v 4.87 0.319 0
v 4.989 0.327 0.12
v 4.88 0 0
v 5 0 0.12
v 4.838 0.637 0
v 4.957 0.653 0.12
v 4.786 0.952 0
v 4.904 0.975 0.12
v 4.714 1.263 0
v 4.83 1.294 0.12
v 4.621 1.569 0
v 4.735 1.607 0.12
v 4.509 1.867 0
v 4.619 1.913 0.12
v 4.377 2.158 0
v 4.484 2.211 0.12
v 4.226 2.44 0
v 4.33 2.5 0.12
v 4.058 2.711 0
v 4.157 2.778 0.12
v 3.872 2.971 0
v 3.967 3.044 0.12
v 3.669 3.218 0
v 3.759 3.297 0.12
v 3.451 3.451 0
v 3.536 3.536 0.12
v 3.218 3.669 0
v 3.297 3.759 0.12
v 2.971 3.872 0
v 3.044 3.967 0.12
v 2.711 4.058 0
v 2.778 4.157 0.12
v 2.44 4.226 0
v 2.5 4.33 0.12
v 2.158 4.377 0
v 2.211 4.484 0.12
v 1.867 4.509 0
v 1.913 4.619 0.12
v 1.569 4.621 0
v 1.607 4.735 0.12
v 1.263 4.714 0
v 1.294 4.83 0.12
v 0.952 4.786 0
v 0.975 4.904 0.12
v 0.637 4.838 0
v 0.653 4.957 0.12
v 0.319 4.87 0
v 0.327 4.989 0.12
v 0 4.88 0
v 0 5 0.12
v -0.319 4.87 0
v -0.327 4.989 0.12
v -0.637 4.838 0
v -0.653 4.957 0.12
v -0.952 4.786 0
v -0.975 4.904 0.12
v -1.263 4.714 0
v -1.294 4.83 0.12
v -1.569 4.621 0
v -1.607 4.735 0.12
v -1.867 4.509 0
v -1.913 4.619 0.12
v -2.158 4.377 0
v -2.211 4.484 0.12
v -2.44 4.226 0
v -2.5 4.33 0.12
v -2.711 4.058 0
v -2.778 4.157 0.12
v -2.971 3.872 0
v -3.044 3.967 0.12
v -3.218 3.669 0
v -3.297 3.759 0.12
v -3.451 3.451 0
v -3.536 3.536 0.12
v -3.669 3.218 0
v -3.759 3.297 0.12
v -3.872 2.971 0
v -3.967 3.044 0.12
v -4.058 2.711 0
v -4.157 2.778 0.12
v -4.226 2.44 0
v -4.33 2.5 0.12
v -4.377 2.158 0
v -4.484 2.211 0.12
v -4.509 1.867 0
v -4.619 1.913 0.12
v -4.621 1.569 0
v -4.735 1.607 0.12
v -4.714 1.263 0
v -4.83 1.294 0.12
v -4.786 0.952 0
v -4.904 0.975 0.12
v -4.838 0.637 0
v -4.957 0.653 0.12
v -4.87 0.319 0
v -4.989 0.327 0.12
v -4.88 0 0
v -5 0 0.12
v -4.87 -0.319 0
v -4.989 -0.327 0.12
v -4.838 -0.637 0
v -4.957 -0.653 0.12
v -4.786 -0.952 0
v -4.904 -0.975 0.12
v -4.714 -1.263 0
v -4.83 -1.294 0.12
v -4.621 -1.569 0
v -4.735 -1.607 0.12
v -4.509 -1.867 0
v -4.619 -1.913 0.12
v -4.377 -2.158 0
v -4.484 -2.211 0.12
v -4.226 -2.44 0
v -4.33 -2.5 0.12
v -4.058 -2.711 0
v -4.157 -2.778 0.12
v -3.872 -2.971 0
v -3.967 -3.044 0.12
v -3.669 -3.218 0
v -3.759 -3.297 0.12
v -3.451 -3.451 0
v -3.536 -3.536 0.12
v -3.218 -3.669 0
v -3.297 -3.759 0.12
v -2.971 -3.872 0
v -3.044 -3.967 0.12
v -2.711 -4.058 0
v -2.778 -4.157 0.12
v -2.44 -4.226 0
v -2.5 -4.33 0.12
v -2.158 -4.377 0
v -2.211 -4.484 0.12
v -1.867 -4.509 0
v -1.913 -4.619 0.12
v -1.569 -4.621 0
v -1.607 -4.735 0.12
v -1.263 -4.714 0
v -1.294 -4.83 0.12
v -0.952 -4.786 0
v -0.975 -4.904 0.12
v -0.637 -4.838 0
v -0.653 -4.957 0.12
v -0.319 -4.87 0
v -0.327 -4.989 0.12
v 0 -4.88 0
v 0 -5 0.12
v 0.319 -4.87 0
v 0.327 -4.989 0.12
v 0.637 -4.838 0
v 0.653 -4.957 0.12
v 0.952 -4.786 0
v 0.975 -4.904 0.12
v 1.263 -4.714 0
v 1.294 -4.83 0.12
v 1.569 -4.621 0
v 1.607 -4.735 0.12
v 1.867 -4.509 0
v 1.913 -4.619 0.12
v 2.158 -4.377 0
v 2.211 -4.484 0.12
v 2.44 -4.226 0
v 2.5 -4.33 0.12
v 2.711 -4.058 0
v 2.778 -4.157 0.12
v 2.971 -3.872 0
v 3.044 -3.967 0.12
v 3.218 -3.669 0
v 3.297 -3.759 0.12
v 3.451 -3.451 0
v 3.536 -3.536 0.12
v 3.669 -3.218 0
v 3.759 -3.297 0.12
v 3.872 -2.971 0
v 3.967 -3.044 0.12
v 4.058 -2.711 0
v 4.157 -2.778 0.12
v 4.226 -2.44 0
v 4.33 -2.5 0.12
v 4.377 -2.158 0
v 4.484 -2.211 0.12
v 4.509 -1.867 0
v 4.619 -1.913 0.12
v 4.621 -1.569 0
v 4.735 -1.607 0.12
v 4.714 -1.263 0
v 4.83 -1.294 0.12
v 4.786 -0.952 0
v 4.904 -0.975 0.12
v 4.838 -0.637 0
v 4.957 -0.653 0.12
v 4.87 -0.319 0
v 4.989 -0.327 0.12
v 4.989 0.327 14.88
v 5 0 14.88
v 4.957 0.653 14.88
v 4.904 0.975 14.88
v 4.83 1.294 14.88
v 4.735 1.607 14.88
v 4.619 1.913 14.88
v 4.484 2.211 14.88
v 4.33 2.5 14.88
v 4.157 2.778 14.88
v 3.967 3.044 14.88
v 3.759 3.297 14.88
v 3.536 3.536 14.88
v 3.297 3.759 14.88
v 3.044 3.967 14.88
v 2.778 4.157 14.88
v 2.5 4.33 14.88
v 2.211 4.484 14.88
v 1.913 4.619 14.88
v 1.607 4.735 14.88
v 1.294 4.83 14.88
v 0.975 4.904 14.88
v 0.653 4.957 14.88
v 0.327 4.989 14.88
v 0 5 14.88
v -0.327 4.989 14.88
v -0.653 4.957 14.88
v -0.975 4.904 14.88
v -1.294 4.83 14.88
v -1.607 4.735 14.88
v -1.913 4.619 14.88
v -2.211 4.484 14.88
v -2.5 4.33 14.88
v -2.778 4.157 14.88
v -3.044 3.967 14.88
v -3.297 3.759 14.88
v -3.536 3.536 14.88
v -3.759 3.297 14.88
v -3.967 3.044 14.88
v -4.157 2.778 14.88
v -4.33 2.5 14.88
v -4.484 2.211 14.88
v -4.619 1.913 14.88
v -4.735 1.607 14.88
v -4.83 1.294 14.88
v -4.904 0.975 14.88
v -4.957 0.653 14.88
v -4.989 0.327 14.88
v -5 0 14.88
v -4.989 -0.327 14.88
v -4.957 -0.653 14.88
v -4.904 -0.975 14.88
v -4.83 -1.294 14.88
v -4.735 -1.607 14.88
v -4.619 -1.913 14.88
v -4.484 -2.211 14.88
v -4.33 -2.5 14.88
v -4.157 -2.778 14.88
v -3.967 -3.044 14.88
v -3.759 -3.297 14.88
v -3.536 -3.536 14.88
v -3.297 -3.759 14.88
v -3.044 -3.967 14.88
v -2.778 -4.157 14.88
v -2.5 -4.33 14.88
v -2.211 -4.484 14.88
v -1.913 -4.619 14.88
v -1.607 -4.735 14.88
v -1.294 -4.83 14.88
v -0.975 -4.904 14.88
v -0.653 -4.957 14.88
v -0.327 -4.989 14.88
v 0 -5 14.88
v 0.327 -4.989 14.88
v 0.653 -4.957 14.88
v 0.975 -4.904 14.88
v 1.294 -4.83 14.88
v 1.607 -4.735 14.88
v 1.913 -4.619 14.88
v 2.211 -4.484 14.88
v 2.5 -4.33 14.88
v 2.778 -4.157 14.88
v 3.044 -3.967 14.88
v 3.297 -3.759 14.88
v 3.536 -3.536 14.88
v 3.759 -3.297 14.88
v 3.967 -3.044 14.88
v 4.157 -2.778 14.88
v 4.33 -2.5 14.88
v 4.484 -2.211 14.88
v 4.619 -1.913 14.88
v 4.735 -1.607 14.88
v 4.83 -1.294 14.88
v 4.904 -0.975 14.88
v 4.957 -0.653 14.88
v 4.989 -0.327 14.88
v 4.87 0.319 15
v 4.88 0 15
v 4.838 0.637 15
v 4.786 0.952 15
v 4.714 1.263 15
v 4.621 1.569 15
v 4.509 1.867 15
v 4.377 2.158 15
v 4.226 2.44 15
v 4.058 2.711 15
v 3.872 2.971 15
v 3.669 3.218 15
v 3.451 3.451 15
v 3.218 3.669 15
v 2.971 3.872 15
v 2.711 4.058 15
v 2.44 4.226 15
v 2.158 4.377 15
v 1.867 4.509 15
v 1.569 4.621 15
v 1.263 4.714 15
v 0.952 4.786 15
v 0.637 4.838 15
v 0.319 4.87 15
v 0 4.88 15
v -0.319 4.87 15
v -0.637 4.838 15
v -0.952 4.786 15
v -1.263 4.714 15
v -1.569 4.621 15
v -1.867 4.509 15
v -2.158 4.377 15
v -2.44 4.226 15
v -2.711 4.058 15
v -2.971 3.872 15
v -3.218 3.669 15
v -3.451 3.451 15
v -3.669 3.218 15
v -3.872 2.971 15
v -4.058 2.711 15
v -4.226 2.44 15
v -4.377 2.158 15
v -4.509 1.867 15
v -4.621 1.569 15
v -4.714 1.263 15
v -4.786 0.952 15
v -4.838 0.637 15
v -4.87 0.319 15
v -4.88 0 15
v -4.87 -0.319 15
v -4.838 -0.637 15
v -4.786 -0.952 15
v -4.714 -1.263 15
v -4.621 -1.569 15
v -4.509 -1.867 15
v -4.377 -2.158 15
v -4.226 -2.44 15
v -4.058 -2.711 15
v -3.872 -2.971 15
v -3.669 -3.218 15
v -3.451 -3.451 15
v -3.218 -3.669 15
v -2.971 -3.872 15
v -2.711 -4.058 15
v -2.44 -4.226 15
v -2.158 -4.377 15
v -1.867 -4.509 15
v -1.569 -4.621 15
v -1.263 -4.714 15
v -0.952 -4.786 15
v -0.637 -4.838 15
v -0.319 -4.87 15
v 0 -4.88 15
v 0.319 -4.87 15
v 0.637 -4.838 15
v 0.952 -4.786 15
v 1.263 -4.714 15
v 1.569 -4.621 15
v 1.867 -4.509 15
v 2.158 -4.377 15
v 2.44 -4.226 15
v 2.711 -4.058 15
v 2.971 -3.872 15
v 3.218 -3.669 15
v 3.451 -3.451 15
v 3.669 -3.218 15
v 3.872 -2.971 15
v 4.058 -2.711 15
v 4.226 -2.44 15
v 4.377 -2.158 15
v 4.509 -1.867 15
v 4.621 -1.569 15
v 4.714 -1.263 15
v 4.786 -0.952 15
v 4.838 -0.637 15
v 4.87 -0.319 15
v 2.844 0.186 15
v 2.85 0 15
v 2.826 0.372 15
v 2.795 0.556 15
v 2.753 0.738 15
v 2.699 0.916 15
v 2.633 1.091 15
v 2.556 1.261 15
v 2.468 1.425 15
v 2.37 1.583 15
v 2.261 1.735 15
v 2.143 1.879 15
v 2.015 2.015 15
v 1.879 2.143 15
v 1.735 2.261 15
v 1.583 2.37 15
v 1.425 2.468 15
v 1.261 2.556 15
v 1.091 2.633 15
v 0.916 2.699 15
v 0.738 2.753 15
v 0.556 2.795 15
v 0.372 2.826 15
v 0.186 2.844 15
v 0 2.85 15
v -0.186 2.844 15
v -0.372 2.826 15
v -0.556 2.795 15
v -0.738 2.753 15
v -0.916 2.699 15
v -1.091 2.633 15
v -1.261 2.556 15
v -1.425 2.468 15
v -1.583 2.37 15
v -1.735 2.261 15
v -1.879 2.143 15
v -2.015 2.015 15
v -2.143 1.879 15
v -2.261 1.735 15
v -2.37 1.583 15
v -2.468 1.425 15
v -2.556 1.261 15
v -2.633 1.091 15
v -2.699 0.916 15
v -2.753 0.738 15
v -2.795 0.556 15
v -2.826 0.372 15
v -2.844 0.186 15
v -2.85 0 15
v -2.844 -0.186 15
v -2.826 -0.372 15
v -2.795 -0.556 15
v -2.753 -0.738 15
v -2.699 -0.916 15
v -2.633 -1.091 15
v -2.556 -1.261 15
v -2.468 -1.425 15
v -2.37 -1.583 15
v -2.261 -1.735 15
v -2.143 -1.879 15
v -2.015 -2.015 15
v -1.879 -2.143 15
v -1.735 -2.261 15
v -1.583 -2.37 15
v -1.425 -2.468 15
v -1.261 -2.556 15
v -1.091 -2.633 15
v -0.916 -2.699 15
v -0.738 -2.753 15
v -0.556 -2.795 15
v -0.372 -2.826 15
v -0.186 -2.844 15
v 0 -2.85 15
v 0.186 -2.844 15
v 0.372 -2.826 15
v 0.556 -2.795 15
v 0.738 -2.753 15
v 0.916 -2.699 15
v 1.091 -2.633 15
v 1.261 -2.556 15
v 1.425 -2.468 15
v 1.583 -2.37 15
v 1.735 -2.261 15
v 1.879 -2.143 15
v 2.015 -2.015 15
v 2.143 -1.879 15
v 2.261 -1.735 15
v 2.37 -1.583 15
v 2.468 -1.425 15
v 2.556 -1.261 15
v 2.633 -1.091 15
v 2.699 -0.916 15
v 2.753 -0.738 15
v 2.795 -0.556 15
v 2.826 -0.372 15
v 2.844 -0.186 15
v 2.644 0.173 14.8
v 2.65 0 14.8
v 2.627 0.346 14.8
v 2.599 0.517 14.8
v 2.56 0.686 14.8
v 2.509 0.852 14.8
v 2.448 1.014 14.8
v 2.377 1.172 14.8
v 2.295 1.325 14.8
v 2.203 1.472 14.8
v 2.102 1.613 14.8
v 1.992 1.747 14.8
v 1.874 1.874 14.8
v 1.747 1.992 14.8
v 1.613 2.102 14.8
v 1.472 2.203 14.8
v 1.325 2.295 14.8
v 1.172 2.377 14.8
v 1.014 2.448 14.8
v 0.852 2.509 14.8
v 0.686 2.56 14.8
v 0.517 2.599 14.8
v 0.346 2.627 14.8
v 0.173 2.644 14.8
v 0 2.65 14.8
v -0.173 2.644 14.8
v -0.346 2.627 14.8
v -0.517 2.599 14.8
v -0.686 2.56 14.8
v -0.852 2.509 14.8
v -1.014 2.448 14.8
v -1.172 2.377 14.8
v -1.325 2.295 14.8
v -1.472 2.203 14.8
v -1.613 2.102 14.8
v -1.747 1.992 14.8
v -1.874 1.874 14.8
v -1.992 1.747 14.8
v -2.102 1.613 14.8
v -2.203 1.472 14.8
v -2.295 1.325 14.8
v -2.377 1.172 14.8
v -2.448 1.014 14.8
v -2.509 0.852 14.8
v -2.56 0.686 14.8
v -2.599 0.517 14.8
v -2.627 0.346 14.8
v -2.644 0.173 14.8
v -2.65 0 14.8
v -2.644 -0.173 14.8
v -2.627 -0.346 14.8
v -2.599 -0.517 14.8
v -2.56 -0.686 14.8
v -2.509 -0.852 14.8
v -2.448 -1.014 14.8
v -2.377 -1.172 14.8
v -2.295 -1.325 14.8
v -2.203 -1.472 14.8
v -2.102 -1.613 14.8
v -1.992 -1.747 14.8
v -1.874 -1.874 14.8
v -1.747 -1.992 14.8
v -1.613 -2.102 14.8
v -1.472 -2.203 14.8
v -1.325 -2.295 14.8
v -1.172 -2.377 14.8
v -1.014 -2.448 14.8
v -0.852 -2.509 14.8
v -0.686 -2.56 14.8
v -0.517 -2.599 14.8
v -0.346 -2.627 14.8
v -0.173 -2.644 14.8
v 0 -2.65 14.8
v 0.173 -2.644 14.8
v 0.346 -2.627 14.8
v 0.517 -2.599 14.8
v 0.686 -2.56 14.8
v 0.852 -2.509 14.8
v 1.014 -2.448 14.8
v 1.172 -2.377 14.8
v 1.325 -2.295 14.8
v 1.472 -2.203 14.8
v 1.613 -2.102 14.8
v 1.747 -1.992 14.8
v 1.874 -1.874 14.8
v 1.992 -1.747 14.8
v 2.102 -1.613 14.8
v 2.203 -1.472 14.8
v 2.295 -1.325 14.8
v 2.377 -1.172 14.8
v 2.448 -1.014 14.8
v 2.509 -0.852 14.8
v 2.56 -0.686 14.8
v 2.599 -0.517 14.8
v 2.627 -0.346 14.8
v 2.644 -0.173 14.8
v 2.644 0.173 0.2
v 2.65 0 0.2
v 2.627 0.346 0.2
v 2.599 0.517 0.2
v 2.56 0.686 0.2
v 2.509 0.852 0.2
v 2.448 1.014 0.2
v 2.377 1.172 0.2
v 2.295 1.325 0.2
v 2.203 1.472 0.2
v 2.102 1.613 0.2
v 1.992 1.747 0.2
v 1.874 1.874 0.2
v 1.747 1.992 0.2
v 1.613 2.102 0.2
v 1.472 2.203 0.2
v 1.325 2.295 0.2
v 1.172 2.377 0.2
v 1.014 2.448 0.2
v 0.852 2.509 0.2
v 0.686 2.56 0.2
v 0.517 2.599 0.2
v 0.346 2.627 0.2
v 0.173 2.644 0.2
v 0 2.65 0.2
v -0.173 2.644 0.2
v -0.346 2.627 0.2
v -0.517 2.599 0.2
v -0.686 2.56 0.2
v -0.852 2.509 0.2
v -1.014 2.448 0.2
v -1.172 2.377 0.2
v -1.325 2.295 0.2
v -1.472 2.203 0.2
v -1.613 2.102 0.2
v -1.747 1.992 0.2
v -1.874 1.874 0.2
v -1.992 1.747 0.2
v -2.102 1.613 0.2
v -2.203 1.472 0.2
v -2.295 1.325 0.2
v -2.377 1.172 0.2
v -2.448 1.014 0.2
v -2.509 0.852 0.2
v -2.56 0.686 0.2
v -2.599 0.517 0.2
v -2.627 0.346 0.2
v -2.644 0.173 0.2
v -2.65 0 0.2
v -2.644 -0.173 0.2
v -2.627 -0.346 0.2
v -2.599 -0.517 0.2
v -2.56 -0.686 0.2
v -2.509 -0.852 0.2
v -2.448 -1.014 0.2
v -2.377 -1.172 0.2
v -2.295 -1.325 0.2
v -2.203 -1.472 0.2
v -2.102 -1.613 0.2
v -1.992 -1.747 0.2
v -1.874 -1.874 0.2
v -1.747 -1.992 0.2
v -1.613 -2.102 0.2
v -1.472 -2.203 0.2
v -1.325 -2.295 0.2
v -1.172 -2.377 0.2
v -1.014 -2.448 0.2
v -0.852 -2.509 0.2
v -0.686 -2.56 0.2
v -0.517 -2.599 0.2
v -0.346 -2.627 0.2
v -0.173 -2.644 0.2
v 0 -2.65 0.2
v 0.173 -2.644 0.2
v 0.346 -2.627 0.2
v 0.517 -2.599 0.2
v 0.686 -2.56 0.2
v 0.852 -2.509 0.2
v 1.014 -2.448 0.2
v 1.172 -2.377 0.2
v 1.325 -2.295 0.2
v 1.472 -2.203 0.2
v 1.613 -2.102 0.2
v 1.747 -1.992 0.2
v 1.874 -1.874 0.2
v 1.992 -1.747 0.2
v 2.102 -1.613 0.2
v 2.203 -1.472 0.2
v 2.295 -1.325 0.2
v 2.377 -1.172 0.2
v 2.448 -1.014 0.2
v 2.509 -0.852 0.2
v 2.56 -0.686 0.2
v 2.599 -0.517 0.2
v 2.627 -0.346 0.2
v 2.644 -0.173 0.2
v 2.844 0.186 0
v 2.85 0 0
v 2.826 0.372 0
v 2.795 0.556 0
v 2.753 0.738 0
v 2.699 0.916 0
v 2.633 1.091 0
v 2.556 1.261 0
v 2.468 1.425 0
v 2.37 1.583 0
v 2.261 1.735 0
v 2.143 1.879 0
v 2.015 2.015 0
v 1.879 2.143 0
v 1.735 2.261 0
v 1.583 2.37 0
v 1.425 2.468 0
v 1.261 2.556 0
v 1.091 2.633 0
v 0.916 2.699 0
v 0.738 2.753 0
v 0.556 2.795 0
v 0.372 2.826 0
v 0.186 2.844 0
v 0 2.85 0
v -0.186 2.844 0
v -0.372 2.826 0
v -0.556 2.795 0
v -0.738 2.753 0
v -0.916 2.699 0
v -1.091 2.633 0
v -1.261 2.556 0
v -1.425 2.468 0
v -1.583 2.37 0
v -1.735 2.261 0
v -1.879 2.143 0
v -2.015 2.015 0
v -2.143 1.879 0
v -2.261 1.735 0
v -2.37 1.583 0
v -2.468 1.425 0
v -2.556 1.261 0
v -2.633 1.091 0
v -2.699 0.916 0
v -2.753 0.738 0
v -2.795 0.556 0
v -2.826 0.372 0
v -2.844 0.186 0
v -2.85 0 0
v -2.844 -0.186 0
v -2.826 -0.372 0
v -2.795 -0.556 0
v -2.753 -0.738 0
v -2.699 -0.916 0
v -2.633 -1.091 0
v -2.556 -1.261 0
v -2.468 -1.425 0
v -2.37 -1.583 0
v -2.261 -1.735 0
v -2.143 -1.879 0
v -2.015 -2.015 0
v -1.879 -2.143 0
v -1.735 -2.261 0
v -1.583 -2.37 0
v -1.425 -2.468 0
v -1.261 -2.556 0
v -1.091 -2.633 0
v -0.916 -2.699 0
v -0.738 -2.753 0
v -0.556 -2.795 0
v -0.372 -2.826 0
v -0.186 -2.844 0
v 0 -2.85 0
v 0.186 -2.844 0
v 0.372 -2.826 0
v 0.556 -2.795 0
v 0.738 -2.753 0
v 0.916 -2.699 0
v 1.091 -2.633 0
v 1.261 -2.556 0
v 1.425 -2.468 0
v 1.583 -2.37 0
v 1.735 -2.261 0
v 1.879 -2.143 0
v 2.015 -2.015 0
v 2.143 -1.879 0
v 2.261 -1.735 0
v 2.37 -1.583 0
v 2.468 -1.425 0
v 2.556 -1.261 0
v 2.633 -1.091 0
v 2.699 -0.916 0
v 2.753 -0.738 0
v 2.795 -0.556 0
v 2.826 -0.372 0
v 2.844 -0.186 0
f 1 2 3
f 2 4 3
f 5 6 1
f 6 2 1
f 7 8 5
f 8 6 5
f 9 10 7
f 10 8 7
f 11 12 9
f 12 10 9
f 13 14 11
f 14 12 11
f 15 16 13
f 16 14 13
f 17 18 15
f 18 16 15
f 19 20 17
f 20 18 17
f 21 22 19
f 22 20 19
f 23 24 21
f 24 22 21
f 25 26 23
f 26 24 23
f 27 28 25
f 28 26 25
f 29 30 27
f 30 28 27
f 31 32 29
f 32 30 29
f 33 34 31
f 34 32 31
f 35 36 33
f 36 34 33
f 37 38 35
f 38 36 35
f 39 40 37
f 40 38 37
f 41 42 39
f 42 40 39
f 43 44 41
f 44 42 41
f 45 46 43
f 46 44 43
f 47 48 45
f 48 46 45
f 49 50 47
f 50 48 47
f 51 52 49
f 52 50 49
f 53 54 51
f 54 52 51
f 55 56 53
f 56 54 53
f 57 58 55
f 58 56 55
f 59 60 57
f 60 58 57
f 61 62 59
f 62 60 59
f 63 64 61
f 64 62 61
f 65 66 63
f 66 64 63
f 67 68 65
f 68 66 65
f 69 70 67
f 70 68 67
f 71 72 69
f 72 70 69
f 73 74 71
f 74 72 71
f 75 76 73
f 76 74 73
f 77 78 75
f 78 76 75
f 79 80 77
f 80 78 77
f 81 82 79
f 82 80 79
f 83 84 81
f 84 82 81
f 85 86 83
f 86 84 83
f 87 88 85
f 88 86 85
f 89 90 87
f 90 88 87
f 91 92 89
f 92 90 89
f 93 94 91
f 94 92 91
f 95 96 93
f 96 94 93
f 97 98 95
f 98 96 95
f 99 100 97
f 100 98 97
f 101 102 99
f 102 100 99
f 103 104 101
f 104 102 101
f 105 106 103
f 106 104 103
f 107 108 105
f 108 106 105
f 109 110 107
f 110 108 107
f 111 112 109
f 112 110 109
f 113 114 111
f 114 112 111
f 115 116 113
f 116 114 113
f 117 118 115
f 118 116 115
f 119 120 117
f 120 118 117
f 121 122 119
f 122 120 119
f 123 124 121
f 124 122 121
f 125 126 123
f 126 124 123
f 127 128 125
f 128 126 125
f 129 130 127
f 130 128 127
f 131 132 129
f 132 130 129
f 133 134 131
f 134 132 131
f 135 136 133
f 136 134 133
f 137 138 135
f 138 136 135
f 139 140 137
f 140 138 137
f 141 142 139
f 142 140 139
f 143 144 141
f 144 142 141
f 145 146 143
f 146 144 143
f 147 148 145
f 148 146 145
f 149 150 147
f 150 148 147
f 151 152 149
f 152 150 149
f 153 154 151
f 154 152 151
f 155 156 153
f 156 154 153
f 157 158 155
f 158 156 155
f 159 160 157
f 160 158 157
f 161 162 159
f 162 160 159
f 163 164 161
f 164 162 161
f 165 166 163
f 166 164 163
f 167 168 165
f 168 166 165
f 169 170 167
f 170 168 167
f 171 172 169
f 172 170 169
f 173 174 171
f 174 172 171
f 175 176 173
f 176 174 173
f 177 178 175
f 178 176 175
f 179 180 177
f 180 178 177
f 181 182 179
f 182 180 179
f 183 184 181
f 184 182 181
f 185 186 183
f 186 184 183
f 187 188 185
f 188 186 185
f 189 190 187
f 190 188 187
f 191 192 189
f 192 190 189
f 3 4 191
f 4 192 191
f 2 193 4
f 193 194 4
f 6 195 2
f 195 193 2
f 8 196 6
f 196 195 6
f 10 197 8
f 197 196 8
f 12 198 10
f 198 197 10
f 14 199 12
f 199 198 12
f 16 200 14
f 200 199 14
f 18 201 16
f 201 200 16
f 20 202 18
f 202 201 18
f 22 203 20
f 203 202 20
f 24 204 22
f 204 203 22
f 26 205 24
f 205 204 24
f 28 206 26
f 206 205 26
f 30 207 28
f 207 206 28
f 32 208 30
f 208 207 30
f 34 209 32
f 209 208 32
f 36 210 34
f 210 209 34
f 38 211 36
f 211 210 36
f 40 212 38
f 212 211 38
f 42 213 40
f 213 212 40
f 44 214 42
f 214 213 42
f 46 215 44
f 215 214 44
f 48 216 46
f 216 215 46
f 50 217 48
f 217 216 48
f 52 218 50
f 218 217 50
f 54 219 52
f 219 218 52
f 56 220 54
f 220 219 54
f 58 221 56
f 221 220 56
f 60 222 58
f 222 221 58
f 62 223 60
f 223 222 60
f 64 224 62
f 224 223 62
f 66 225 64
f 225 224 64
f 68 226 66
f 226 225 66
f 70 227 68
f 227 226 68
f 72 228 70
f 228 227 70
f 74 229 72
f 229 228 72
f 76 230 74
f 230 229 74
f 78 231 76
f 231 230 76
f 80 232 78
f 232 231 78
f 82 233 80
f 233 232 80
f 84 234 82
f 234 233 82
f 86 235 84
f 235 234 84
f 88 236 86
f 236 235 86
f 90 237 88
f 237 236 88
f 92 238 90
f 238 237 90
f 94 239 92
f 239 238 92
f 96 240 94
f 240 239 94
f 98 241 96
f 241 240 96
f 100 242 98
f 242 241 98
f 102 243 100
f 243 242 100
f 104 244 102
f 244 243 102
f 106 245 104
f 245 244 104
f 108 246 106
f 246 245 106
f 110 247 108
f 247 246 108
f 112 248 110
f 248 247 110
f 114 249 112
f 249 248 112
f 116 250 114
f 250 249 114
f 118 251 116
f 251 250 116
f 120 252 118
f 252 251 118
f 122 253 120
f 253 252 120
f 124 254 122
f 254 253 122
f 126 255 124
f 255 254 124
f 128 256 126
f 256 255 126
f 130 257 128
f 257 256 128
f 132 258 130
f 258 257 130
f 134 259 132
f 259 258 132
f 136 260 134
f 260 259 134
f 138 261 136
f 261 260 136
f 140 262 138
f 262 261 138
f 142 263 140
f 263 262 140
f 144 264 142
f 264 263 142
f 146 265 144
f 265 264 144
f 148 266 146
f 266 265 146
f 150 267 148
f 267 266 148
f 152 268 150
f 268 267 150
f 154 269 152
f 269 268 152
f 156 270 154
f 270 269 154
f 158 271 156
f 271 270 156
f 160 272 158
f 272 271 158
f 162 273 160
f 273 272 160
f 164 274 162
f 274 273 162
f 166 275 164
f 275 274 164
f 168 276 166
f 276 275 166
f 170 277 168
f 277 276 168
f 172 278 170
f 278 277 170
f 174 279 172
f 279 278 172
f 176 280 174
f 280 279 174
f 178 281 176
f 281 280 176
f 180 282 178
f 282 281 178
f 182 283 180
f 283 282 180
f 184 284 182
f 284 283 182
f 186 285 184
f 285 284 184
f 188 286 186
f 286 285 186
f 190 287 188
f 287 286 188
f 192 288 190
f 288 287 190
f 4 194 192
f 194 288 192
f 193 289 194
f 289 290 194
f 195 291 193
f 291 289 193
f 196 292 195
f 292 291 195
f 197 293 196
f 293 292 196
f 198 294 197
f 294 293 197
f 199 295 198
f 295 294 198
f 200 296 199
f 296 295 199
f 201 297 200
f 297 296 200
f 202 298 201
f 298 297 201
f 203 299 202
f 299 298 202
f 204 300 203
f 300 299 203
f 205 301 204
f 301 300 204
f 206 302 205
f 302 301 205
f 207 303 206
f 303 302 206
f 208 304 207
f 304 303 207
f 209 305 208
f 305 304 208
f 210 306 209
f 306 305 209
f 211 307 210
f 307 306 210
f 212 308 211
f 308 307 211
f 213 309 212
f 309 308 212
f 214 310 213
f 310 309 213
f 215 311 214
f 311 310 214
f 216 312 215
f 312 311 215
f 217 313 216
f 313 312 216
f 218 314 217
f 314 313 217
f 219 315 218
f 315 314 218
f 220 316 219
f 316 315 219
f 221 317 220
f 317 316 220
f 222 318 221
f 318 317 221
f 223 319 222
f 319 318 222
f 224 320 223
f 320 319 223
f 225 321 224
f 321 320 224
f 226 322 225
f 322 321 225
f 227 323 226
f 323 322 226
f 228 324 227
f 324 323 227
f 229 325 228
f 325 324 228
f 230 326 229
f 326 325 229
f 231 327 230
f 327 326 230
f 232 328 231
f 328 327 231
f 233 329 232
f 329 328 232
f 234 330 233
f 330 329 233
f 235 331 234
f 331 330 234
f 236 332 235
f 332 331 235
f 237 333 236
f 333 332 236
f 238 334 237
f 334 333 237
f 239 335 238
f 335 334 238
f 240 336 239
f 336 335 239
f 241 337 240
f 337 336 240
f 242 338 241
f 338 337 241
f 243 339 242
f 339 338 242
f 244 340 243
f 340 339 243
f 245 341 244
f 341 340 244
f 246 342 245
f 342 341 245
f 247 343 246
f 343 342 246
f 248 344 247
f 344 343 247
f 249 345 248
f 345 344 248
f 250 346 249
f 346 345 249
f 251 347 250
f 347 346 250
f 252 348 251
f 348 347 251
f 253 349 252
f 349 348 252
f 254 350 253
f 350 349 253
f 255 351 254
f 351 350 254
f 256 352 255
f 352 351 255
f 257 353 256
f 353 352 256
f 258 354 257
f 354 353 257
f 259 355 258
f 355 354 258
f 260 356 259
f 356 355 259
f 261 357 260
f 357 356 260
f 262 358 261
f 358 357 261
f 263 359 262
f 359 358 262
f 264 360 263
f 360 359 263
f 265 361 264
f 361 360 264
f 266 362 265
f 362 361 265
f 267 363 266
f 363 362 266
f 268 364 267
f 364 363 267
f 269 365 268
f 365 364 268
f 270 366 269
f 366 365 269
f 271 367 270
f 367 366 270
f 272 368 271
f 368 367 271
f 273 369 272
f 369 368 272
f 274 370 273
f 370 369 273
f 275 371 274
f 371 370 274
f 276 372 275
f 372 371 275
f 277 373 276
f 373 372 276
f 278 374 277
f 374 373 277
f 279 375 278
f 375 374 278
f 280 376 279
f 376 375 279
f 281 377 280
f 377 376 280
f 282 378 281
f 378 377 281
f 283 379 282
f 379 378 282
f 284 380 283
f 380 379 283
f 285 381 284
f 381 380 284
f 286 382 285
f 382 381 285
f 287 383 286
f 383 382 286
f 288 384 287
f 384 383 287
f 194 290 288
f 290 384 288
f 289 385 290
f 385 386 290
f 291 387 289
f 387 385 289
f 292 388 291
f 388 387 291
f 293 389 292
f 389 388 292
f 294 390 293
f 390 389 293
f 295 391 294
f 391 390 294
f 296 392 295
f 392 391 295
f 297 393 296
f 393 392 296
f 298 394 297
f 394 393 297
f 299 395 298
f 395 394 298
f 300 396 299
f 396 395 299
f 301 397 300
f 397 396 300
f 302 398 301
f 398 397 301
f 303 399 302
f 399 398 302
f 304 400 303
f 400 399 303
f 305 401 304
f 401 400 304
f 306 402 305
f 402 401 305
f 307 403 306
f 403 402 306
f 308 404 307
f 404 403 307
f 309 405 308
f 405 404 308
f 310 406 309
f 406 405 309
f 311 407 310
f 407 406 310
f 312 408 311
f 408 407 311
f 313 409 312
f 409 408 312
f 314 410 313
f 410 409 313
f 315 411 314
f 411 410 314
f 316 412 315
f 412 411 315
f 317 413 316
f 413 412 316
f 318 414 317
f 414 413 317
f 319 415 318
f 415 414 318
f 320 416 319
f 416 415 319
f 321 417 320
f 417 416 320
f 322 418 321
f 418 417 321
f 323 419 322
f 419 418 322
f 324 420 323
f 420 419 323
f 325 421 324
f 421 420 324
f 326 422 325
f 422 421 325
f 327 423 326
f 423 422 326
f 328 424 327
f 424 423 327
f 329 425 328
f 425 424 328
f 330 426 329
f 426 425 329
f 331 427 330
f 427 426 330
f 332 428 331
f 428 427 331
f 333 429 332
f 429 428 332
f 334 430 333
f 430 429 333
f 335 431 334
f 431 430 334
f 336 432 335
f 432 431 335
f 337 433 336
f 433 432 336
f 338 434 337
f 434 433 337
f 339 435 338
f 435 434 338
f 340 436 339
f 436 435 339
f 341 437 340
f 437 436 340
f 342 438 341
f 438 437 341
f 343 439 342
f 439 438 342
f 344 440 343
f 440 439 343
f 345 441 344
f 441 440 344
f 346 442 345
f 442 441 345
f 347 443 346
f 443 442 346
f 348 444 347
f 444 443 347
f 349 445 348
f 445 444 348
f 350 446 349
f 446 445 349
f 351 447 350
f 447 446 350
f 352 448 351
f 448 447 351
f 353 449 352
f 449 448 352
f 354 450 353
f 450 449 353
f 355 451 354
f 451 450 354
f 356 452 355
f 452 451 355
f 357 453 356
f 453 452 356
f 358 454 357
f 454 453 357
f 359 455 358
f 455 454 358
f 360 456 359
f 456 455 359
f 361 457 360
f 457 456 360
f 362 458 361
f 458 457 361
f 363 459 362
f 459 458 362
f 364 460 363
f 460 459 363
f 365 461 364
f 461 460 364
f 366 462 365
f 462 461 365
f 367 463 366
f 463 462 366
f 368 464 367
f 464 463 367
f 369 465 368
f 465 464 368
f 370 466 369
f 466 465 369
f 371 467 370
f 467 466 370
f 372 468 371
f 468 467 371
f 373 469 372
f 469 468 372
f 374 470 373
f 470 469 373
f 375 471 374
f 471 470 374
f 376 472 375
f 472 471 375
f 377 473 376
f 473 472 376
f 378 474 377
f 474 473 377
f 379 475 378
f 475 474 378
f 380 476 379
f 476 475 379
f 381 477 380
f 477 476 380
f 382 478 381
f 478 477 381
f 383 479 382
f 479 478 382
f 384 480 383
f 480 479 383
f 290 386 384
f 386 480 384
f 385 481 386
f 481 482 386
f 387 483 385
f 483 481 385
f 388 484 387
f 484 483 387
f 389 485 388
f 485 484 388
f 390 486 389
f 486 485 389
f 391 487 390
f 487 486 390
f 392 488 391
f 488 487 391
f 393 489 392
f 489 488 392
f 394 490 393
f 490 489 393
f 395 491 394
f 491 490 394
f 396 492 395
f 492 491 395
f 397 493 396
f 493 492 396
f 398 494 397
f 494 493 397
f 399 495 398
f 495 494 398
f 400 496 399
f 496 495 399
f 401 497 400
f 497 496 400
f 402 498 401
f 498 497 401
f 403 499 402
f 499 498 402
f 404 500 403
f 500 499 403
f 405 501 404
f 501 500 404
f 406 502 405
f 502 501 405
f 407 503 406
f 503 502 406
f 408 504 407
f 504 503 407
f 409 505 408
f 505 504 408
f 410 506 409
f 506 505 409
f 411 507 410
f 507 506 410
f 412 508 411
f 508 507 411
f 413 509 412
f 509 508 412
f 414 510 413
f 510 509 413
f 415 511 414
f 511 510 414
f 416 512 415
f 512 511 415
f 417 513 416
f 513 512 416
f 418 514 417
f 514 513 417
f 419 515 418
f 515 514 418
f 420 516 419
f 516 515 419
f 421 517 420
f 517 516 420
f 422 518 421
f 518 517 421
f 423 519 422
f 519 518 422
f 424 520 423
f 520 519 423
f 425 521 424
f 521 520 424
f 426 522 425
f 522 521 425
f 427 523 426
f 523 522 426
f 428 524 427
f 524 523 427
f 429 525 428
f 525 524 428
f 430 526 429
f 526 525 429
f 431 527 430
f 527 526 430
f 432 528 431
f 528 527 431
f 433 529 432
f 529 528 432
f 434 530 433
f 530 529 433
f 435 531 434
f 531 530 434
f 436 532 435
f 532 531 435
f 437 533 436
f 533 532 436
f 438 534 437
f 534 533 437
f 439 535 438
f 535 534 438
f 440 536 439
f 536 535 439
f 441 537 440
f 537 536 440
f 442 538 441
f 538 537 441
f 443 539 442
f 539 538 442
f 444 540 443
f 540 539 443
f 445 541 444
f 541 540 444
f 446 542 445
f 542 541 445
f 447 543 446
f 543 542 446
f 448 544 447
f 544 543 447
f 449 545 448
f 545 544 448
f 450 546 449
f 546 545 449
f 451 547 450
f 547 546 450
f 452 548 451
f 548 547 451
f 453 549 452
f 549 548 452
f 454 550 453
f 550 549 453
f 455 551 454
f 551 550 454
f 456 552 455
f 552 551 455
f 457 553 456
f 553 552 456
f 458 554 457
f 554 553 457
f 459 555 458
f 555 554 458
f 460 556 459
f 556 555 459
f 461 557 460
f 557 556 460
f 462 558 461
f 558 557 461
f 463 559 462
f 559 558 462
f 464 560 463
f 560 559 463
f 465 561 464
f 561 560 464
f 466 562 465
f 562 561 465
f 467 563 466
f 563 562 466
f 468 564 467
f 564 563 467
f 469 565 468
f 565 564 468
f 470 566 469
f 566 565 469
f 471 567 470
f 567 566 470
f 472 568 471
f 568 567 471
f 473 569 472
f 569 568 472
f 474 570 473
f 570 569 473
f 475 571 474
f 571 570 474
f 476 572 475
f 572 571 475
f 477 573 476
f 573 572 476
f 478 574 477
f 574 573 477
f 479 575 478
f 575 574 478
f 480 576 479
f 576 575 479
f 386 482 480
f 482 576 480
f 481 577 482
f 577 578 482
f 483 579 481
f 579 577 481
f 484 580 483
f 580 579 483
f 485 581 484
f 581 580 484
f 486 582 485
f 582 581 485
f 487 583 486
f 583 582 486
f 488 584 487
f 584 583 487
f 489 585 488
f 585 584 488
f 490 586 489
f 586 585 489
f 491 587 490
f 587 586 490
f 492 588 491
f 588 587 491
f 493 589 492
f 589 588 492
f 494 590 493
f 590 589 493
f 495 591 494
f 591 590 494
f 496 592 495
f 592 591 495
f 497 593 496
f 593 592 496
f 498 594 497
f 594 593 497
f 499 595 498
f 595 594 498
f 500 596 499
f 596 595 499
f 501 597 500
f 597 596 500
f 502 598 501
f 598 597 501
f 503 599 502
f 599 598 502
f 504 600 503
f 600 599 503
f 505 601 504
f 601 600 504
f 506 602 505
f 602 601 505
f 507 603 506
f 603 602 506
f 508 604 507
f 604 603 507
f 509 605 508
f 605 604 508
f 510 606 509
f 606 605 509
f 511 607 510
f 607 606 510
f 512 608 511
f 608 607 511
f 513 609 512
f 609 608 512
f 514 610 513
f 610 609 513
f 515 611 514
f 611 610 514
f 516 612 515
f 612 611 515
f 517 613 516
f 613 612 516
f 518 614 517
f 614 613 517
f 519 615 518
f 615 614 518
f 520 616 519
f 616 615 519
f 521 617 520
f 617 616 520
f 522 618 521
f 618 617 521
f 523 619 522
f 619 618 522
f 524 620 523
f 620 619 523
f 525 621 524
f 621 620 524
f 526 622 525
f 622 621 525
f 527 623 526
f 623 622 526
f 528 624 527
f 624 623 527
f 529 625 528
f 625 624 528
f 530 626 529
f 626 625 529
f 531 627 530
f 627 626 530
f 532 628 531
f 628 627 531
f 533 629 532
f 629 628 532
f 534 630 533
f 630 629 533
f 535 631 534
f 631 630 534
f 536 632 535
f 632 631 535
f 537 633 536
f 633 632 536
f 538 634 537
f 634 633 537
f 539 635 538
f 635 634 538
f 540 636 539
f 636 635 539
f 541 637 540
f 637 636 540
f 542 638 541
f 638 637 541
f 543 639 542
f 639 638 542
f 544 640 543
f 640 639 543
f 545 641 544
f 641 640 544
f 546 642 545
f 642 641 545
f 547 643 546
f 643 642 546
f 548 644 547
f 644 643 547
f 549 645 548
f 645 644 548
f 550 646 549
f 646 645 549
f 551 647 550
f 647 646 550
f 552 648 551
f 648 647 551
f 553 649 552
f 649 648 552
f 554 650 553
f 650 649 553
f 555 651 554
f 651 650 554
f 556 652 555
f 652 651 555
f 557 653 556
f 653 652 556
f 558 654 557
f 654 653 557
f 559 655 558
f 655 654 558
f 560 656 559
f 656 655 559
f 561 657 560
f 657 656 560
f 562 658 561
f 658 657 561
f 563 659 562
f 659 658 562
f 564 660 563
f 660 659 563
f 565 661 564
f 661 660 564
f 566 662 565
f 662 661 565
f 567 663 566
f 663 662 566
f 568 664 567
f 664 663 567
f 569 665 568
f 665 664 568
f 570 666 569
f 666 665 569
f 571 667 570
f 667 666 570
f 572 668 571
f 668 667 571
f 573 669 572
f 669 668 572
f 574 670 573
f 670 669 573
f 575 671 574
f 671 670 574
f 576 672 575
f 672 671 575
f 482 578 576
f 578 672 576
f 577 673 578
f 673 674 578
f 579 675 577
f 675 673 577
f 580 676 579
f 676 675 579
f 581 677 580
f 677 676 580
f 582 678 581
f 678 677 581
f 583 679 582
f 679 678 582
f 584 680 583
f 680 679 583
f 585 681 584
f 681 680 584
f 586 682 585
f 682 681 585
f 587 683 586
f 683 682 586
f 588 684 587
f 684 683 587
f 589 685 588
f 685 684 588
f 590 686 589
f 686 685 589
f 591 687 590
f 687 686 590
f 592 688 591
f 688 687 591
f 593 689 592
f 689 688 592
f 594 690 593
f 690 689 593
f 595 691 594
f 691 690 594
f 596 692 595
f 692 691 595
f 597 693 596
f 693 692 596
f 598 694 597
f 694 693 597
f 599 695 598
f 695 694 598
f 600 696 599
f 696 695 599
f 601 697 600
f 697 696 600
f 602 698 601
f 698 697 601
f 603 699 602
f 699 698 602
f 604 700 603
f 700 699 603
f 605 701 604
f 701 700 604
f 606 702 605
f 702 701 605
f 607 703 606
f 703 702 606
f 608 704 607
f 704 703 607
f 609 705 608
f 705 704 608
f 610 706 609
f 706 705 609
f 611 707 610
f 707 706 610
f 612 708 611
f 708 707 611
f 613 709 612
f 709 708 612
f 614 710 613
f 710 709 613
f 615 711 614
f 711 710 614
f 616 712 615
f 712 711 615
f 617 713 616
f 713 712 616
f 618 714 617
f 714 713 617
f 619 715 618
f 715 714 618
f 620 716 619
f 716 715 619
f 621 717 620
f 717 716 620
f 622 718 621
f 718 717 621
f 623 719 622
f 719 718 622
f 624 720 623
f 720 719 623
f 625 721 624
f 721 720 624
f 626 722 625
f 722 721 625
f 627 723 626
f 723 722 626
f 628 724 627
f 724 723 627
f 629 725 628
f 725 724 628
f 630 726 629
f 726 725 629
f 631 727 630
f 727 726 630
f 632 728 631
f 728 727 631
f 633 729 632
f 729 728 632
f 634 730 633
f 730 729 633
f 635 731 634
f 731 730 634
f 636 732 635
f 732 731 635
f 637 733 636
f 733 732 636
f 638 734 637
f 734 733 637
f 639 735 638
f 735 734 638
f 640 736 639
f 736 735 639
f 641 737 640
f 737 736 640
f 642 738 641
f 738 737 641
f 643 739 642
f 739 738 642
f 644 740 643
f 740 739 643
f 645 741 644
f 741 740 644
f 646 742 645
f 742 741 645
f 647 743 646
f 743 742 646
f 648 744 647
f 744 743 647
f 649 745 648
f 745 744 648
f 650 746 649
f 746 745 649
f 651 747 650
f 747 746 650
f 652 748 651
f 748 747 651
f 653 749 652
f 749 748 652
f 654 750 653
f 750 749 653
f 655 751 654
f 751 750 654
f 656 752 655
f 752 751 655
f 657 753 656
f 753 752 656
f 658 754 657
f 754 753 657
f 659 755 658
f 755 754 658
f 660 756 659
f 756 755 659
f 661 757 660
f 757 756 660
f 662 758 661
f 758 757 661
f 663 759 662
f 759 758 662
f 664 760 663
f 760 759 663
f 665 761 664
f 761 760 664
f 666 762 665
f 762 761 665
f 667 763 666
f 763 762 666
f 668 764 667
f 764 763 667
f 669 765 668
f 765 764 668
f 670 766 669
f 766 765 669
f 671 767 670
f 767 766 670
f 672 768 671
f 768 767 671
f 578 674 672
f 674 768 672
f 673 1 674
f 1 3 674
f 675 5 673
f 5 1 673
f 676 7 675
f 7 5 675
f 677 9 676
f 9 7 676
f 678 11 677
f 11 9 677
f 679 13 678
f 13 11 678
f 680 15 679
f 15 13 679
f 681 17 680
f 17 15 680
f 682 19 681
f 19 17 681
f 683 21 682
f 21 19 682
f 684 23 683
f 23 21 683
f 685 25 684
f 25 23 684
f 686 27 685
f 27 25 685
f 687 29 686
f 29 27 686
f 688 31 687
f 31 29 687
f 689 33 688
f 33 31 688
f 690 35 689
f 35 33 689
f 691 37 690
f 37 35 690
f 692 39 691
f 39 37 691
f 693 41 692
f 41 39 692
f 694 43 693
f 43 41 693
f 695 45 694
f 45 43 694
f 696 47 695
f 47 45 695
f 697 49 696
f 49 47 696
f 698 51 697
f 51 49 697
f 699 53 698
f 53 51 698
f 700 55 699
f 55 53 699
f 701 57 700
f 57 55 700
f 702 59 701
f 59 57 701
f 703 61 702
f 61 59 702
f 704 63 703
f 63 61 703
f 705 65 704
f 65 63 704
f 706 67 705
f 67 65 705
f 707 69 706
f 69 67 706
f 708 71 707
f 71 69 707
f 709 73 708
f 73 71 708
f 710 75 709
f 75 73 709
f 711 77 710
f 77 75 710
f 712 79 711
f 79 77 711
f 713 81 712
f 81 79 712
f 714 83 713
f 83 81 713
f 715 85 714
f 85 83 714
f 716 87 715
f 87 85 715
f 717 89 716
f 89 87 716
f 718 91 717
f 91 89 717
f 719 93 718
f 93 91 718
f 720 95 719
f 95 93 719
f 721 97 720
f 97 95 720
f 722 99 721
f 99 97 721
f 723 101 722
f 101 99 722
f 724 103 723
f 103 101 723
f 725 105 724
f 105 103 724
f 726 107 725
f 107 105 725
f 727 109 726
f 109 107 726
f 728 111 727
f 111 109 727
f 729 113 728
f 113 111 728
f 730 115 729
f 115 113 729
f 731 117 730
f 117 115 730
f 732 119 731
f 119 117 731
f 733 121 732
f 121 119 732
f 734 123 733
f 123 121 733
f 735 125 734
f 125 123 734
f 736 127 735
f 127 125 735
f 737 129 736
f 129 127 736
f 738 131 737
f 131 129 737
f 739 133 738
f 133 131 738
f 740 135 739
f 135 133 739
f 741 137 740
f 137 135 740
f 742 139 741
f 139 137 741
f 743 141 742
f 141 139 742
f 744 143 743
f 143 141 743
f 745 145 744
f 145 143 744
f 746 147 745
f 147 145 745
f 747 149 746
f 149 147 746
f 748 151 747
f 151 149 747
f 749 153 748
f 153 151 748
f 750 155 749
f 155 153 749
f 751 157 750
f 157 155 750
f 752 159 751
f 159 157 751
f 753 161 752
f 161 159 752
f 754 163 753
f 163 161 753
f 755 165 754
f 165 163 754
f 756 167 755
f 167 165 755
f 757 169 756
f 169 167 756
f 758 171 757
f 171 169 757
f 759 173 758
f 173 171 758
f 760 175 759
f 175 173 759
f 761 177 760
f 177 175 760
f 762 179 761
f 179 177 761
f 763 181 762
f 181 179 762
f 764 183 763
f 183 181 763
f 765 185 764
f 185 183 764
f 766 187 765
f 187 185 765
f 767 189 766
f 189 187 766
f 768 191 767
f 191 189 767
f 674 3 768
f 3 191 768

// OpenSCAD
// OOMP generic catalogue model; units: mm.
// Stud length is additional to body depth. Tapping depths are model assumptions.
variant = "full"; // [full, display]
family = "spacer";
connection_type = "plain";
depth_mm = 15;
stud_length_mm = 0;
tapped_depth_mm = 0;
bore_mm = 5.3;
outer_diameter_mm = 10;
across_flats_mm = 6;
thread_nominal_diameter_mm = 3;
thread_pitch_mm = 0.5;
edge_chamfer_mm = 0.12;
mouth_chamfer_mm = 0.2;
angular_segments = 96;
samples_per_pitch = 16;

// Boundary travels up the outside, then down any tapped/plain bore.
// Equal-height rings at shoulders form the annular shoulder faces.
n = angular_segments;
threaded = family == "standoff";
has_stud = connection_type == "stud_to_tapped" || connection_type == "stud_to_stud";
two_studs = connection_type == "stud_to_stud";
through = !threaded || connection_type == "tapped_to_tapped";
pitch = thread_pitch_mm;
diameter = threaded ? thread_nominal_diameter_mm : bore_mm;
minor = diameter - 5*sqrt(3)*pitch/8;
transition = mouth_chamfer_mm + (threaded ? 5*sqrt(3)*pitch/16 : 0);
tip_chamfer = mouth_chamfer_mm + 17*sqrt(3)*pitch/48;
function sorted(v) = len(v)<=1 ? v : let(p=v[0])
    concat(sorted([for(x=v) if(x<p-1e-8) x]), [p], sorted([for(x=v) if(x>p+1e-8) x]));
function reverse(v) = [for(i=[len(v)-1:-1:0]) v[i]];
function theta(i) = i*360/n;
function fract(x) = x-floor(x);
function phase_distance(i,z) = abs(fract(z/pitch-theta(i)/360+0.5)-0.5);
function thread_r(i,z) = minor/2 + min(5*sqrt(3)*pitch/16,
    max(0,(phase_distance(i,z)-0.125)*pitch*sqrt(3)));
function stud_r(i,z,tip) = min(diameter/2 - (variant=="full" ?
    min(17*sqrt(3)*pitch/48,max(0,(phase_distance(i,z)-0.0625)*pitch*sqrt(3))) : 0),
    diameter/2-tip_chamfer+abs(z-tip));
function body_r(i,z) = (threaded ? across_flats_mm/2/cos(theta(i)%60-30) : outer_diameter_mm/2)
    - max(0,edge_chamfer_mm-min(z,depth_mm-z));
function bore_r(i,z) = max(threaded ? (variant=="full" ? thread_r(i,z) : minor/2) : diameter/2,
    diameter/2+mouth_chamfer_mm-(through ? min(z,depth_mm-z) : depth_mm-z));
function stud_z(a,b,tip) = let(count=variant=="full" ? ceil(stud_length_mm/pitch*samples_per_pitch) : 1)
    sorted(concat([for(i=[0:count]) a+(b-a)*i/count], [tip==a ? tip+tip_chamfer : tip-tip_chamfer]));
body_z = sorted([0,edge_chamfer_mm,depth_mm-edge_chamfer_mm,depth_mm]);
low = through ? 0 : depth_mm-tapped_depth_mm;
count = threaded && variant=="full" ? ceil((depth_mm-low)/pitch*samples_per_pitch) : 1;
bore_z = two_studs ? [] : reverse(sorted(concat(
    [for(i=[0:count]) low+(depth_mm-low)*i/count],
    [depth_mm-mouth_chamfer_mm,depth_mm-transition],
    through ? [mouth_chamfer_mm,transition] : [])));
// Ring descriptors: [height, kind, tip]. Kind: 0 body, 1 stud, 2 bore.
rings = concat(
    has_stud ? [for(z=stud_z(-stud_length_mm,0,-stud_length_mm)) [z,1,-stud_length_mm]] : [],
    [for(z=body_z) [z,0,0]],
    two_studs ? [for(z=stud_z(depth_mm,depth_mm+stud_length_mm,depth_mm+stud_length_mm)) [z,1,depth_mm+stud_length_mm]] : [],
    [for(z=bore_z) [z,2,0]]);
function radius(i,ring) = ring[1]==0 ? body_r(i,ring[0]) :
    ring[1]==1 ? stud_r(i,ring[0],ring[2]) : bore_r(i,ring[0]);
points = concat([for(ring=rings) for(i=[0:n-1])
    [radius(i,ring)*cos(theta(i)),radius(i,ring)*sin(theta(i)),ring[0]]],
    through ? [] : [[0,0,rings[0][0]],[0,0,rings[len(rings)-1][0]]]);
center = len(rings)*n;
last = (len(rings)-1)*n;
// OpenSCAD winding is opposite to STL winding.
faces = concat(
    [for(j=[0:len(rings)-(through ? 1 : 2)]) for(i=[0:n-1]) each
        let(a=j*n+i,b=j*n+(i+1)%n,c=((j+1)%len(rings))*n+(i+1)%n,d=((j+1)%len(rings))*n+i)
        [[a,c,b],[a,d,c]]],
    through ? [] : [for(i=[0:n-1]) each let(k=(i+1)%n)
        [[center,i,k],[center+1,last+k,last+i]]]);
assert(family=="spacer" || family=="standoff");
assert(!threaded || connection_type=="tapped_to_tapped" || has_stud);
assert(depth_mm>0 && diameter>0 && pitch>0);
assert(variant=="full" || variant=="display");
assert(n>=24 && n%12==0 && samples_per_pitch>=8);
assert(mouth_chamfer_mm>0 && mouth_chamfer_mm<depth_mm/2);
assert(edge_chamfer_mm>=0 && edge_chamfer_mm<depth_mm/2);
assert(diameter+4*max(mouth_chamfer_mm,edge_chamfer_mm) < (threaded ? across_flats_mm : outer_diameter_mm));
assert(!has_stud || stud_length_mm>2*mouth_chamfer_mm);
assert(!through || !threaded || 2*transition<depth_mm);
assert(connection_type!="stud_to_tapped" || (tapped_depth_mm>transition && tapped_depth_mm<depth_mm));
color([0.86,0.85,0.81]) polyhedron(points=points,faces=faces,convexity=20);
